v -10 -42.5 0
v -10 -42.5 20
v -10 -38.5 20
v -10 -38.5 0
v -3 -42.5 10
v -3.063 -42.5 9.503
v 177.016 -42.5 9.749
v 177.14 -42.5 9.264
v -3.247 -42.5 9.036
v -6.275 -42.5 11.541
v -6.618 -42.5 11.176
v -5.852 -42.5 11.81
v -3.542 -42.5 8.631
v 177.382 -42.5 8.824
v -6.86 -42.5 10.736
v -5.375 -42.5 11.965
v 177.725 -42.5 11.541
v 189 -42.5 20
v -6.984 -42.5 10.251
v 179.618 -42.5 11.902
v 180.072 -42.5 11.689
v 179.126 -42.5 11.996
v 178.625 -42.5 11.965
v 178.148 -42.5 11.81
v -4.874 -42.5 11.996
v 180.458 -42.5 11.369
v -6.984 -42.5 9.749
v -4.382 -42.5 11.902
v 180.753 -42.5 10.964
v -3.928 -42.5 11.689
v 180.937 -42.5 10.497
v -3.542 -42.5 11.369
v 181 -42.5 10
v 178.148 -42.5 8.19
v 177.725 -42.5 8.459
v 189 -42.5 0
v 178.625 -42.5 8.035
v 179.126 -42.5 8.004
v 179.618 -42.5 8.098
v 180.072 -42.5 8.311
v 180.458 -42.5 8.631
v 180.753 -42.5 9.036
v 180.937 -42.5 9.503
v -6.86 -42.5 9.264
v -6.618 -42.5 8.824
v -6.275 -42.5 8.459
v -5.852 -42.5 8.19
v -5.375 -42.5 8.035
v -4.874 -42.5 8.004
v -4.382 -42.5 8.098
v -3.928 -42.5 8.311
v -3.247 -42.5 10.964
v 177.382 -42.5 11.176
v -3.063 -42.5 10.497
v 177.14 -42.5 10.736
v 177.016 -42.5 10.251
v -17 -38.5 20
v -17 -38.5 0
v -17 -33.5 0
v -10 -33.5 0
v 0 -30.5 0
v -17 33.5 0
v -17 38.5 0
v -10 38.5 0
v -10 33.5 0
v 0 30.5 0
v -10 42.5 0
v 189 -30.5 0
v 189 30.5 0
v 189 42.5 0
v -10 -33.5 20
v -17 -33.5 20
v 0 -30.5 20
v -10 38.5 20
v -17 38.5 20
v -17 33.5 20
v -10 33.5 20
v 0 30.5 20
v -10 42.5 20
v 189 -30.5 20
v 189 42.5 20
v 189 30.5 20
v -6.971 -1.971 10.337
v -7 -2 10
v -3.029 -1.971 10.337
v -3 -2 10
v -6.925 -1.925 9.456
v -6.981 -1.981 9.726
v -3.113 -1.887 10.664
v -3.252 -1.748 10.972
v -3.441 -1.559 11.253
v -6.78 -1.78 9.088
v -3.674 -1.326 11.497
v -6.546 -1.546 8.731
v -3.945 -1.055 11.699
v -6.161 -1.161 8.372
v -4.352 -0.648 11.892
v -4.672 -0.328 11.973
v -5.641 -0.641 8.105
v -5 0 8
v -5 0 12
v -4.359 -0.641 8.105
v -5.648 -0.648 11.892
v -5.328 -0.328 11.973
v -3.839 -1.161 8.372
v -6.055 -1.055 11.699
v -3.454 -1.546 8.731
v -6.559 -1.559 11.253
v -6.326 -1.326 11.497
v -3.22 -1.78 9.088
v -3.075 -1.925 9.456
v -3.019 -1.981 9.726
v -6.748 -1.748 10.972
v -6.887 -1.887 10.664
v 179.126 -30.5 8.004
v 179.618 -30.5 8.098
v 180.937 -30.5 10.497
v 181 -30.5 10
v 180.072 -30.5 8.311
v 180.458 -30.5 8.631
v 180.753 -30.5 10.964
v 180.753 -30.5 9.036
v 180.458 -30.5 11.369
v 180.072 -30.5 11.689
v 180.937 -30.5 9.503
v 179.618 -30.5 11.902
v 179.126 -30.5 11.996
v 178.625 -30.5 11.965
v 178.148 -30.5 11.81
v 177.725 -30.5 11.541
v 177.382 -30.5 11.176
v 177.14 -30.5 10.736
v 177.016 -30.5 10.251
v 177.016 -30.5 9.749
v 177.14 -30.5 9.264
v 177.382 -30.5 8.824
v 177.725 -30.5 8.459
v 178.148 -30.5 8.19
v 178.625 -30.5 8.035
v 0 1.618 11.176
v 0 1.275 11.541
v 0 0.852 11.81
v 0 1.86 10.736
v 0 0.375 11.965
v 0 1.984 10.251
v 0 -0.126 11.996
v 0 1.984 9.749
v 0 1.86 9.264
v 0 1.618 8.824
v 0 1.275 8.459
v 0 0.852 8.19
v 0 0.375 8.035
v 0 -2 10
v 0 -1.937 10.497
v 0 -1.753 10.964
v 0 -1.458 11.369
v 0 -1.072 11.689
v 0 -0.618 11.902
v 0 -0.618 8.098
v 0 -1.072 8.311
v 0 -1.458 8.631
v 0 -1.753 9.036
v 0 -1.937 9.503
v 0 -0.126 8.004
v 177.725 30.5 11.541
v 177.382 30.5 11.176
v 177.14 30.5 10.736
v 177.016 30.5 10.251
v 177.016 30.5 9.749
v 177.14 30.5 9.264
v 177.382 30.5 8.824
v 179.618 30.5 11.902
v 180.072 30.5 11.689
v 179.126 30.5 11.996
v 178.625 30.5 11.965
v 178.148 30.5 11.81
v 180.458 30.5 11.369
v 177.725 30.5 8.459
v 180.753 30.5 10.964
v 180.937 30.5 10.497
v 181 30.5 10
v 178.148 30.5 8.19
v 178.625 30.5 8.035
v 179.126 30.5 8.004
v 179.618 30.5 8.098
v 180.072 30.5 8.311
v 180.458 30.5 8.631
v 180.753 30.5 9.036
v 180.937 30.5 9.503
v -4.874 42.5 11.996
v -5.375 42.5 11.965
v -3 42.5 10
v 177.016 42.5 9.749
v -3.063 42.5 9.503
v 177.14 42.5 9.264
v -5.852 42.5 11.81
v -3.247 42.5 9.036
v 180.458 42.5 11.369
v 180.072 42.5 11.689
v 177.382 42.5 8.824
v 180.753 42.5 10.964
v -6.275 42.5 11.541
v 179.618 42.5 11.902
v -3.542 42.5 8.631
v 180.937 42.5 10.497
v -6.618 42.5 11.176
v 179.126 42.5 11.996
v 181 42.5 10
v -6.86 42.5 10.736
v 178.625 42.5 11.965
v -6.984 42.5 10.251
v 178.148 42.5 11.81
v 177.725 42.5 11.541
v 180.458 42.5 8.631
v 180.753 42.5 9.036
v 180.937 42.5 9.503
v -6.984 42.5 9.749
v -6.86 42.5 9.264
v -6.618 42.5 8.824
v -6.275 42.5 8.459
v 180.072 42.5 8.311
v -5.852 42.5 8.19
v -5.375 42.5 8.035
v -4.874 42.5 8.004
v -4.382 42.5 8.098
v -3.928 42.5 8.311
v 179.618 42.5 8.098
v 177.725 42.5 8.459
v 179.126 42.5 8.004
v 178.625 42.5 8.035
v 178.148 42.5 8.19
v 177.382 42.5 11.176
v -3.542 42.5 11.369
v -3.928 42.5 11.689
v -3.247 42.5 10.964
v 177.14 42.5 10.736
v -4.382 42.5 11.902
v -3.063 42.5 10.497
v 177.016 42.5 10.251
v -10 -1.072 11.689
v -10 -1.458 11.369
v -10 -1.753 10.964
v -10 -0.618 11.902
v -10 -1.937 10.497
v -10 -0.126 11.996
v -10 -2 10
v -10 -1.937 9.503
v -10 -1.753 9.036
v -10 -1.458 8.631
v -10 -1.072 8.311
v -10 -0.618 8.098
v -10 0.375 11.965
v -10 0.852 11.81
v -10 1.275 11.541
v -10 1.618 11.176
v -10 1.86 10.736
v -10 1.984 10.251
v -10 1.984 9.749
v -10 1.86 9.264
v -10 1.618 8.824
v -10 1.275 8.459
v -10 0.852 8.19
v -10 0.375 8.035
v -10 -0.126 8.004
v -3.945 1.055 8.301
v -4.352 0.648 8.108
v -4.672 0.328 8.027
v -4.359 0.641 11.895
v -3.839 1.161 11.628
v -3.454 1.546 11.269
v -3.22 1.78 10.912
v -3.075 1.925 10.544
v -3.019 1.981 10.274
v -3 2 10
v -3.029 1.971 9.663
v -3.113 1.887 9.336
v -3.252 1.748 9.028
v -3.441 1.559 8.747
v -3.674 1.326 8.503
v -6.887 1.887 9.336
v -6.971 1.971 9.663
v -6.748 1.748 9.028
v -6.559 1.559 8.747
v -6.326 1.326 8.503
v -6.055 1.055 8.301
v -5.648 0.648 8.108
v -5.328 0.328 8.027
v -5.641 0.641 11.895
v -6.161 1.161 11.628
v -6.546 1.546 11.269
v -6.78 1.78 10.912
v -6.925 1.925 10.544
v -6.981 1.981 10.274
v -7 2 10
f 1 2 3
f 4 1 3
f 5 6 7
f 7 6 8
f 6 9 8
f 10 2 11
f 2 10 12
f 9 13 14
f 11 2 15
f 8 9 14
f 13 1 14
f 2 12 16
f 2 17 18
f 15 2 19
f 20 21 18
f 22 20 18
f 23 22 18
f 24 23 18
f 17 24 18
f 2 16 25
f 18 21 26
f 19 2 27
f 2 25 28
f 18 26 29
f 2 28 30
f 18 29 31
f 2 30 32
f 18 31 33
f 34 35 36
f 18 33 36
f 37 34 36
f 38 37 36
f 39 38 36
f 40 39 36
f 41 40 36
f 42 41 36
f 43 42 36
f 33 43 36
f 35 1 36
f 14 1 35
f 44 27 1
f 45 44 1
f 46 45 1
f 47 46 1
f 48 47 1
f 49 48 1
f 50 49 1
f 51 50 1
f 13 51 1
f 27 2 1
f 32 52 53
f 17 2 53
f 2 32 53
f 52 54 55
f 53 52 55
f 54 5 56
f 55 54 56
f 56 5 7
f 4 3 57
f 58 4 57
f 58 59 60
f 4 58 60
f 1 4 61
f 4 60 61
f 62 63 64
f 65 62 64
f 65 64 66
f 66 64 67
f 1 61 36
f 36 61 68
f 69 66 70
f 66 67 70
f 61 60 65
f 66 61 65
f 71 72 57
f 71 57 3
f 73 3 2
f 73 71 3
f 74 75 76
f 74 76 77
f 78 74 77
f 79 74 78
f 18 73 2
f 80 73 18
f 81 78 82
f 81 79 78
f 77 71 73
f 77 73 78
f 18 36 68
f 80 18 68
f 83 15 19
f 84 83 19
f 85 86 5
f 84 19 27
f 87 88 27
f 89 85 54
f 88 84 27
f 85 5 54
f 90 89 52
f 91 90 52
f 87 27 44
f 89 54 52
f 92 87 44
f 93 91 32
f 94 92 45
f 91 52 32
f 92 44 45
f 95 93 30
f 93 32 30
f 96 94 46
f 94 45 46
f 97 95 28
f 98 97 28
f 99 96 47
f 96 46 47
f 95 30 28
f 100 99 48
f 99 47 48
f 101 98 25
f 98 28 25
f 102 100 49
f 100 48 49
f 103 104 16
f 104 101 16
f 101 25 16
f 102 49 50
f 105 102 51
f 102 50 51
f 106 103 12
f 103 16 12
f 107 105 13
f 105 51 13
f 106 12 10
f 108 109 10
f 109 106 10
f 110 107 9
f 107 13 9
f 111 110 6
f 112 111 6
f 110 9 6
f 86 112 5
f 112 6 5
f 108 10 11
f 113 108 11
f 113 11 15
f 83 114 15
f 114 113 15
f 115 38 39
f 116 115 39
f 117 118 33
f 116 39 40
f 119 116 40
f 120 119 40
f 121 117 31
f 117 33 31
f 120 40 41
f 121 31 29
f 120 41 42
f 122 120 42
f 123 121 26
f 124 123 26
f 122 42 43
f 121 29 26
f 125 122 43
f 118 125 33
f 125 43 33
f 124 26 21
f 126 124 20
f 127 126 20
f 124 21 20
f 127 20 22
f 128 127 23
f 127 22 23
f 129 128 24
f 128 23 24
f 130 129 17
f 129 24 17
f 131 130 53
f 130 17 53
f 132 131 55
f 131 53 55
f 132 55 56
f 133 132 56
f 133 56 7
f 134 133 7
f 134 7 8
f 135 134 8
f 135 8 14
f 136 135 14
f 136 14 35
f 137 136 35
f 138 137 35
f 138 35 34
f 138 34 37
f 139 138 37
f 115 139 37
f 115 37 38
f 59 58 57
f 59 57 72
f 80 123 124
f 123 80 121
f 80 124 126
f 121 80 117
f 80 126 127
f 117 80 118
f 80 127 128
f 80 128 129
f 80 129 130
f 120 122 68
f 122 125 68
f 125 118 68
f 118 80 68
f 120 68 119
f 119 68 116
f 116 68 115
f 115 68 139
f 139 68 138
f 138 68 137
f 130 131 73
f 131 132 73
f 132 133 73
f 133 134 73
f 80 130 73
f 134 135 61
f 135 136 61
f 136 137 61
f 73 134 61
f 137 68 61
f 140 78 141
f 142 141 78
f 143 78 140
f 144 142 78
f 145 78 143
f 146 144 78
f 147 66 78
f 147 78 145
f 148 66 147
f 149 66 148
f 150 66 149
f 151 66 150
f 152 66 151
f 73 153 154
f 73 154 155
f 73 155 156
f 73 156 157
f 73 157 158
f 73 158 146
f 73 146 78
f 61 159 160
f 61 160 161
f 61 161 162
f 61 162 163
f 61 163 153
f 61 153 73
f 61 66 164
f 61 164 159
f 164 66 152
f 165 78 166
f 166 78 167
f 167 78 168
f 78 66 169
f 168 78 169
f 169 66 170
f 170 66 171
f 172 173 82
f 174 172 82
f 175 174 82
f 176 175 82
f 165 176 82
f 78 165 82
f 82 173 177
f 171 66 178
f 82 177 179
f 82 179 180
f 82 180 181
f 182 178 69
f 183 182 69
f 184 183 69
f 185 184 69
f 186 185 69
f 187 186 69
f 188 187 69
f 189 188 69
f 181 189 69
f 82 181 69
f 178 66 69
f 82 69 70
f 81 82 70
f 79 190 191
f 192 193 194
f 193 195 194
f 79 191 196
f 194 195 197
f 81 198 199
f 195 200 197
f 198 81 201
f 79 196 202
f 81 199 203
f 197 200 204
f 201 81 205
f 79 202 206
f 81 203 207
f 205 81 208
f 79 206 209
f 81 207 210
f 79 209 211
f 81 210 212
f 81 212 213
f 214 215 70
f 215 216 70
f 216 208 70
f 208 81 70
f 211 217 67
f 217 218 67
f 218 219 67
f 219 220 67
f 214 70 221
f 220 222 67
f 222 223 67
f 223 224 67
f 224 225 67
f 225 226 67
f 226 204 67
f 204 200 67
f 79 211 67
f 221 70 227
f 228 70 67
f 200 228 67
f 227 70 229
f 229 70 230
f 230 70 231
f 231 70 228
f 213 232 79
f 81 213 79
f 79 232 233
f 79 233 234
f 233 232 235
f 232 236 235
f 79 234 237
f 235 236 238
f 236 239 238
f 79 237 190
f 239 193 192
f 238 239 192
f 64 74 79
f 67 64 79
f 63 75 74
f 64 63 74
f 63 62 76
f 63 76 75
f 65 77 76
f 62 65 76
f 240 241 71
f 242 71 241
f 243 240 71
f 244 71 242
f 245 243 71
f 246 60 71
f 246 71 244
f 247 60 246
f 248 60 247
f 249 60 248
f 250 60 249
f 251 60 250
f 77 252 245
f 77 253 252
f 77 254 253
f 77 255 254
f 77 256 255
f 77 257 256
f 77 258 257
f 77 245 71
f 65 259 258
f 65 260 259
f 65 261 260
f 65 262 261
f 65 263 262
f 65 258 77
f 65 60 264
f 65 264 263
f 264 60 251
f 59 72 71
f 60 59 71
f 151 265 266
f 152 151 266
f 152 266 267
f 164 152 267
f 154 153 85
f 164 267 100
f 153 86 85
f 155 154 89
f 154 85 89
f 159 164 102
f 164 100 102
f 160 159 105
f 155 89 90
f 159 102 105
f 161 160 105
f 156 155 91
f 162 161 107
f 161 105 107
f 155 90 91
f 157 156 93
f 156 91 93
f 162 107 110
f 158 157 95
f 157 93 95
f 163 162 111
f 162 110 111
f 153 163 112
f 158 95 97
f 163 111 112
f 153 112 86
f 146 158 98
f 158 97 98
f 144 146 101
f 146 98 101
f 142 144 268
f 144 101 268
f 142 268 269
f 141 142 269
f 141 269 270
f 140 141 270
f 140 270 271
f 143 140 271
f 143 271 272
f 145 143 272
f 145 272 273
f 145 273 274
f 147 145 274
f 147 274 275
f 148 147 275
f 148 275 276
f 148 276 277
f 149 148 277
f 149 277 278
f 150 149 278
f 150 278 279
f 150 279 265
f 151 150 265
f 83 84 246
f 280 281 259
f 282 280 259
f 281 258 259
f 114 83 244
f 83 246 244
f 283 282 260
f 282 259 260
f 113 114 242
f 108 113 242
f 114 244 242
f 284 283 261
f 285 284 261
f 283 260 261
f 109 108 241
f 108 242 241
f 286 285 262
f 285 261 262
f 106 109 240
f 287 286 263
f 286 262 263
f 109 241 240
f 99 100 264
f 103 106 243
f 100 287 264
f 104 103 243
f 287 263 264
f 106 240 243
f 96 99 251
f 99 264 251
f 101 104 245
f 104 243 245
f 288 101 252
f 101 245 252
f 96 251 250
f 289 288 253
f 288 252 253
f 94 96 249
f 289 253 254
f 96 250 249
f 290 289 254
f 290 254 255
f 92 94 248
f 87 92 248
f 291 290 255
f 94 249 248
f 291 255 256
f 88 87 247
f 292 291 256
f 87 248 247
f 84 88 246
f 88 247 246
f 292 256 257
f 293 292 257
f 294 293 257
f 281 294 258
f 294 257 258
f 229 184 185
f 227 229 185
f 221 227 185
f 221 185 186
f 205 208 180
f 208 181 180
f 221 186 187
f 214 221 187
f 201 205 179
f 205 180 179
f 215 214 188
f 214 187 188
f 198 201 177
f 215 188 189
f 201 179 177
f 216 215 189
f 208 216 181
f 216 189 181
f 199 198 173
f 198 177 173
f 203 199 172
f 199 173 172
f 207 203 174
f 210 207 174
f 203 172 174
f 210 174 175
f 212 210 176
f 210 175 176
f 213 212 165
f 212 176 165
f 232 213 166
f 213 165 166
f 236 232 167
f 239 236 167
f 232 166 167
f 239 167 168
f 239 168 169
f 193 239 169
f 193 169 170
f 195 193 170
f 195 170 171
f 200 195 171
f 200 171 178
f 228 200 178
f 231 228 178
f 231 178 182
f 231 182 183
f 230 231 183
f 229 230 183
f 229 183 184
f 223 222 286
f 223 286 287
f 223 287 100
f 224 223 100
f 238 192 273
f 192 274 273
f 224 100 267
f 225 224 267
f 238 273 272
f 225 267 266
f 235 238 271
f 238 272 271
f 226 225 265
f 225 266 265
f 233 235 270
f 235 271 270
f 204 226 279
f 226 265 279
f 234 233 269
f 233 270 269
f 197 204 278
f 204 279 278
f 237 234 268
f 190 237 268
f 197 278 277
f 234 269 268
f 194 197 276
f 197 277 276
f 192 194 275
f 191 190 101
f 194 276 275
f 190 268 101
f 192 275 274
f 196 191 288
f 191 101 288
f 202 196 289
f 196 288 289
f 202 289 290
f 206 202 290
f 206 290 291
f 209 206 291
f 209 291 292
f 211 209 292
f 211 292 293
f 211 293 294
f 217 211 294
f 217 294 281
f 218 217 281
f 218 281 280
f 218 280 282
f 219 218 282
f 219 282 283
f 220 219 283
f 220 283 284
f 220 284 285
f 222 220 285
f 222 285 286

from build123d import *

# Parameters (mm, degrees)
PAD_DEPTH       = 20
SKETCH004_R     = 2
POCKET002_DEPTH = 199.001
SKETCH005_R     = 2
POCKET003_DEPTH = 85.001


with BuildPart() as part:
    # Sketch → Pad (new body)
    with BuildSketch(Plane.XY):
        Polygon((-10, -42.5), (189, -42.5), (189, -30.5), (0, -30.5), (0, 30.5), (189, 30.5), (189, 42.5), (-10, 42.5), (-10, 38.5), (-17, 38.5), (-17, 33.5), (-10, 33.5), (-10, -33.5), (-17, -33.5), (-17, -38.5), (-10, -38.5), align=None)
    extrude(amount=PAD_DEPTH)

    # Sketch004 → Pocket002 (cut, through all)
    with BuildSketch(Plane(origin=(-10, 0, 0), x_dir=(0, -1, 0), z_dir=(-1, 0, 0))):
        with Locations((0, 10)):
            Circle(SKETCH004_R)
    extrude(amount=-POCKET002_DEPTH, mode=Mode.SUBTRACT)

    # Sketch005 → Pocket003 (cut, through all)
    with BuildSketch(Plane.XZ.offset(42.5)):
        with Locations((-5, 10)):
            Circle(SKETCH005_R)
        with Locations((179, 10)):
            Circle(SKETCH005_R)
    extrude(amount=-POCKET003_DEPTH, mode=Mode.SUBTRACT)


solid = part.part
